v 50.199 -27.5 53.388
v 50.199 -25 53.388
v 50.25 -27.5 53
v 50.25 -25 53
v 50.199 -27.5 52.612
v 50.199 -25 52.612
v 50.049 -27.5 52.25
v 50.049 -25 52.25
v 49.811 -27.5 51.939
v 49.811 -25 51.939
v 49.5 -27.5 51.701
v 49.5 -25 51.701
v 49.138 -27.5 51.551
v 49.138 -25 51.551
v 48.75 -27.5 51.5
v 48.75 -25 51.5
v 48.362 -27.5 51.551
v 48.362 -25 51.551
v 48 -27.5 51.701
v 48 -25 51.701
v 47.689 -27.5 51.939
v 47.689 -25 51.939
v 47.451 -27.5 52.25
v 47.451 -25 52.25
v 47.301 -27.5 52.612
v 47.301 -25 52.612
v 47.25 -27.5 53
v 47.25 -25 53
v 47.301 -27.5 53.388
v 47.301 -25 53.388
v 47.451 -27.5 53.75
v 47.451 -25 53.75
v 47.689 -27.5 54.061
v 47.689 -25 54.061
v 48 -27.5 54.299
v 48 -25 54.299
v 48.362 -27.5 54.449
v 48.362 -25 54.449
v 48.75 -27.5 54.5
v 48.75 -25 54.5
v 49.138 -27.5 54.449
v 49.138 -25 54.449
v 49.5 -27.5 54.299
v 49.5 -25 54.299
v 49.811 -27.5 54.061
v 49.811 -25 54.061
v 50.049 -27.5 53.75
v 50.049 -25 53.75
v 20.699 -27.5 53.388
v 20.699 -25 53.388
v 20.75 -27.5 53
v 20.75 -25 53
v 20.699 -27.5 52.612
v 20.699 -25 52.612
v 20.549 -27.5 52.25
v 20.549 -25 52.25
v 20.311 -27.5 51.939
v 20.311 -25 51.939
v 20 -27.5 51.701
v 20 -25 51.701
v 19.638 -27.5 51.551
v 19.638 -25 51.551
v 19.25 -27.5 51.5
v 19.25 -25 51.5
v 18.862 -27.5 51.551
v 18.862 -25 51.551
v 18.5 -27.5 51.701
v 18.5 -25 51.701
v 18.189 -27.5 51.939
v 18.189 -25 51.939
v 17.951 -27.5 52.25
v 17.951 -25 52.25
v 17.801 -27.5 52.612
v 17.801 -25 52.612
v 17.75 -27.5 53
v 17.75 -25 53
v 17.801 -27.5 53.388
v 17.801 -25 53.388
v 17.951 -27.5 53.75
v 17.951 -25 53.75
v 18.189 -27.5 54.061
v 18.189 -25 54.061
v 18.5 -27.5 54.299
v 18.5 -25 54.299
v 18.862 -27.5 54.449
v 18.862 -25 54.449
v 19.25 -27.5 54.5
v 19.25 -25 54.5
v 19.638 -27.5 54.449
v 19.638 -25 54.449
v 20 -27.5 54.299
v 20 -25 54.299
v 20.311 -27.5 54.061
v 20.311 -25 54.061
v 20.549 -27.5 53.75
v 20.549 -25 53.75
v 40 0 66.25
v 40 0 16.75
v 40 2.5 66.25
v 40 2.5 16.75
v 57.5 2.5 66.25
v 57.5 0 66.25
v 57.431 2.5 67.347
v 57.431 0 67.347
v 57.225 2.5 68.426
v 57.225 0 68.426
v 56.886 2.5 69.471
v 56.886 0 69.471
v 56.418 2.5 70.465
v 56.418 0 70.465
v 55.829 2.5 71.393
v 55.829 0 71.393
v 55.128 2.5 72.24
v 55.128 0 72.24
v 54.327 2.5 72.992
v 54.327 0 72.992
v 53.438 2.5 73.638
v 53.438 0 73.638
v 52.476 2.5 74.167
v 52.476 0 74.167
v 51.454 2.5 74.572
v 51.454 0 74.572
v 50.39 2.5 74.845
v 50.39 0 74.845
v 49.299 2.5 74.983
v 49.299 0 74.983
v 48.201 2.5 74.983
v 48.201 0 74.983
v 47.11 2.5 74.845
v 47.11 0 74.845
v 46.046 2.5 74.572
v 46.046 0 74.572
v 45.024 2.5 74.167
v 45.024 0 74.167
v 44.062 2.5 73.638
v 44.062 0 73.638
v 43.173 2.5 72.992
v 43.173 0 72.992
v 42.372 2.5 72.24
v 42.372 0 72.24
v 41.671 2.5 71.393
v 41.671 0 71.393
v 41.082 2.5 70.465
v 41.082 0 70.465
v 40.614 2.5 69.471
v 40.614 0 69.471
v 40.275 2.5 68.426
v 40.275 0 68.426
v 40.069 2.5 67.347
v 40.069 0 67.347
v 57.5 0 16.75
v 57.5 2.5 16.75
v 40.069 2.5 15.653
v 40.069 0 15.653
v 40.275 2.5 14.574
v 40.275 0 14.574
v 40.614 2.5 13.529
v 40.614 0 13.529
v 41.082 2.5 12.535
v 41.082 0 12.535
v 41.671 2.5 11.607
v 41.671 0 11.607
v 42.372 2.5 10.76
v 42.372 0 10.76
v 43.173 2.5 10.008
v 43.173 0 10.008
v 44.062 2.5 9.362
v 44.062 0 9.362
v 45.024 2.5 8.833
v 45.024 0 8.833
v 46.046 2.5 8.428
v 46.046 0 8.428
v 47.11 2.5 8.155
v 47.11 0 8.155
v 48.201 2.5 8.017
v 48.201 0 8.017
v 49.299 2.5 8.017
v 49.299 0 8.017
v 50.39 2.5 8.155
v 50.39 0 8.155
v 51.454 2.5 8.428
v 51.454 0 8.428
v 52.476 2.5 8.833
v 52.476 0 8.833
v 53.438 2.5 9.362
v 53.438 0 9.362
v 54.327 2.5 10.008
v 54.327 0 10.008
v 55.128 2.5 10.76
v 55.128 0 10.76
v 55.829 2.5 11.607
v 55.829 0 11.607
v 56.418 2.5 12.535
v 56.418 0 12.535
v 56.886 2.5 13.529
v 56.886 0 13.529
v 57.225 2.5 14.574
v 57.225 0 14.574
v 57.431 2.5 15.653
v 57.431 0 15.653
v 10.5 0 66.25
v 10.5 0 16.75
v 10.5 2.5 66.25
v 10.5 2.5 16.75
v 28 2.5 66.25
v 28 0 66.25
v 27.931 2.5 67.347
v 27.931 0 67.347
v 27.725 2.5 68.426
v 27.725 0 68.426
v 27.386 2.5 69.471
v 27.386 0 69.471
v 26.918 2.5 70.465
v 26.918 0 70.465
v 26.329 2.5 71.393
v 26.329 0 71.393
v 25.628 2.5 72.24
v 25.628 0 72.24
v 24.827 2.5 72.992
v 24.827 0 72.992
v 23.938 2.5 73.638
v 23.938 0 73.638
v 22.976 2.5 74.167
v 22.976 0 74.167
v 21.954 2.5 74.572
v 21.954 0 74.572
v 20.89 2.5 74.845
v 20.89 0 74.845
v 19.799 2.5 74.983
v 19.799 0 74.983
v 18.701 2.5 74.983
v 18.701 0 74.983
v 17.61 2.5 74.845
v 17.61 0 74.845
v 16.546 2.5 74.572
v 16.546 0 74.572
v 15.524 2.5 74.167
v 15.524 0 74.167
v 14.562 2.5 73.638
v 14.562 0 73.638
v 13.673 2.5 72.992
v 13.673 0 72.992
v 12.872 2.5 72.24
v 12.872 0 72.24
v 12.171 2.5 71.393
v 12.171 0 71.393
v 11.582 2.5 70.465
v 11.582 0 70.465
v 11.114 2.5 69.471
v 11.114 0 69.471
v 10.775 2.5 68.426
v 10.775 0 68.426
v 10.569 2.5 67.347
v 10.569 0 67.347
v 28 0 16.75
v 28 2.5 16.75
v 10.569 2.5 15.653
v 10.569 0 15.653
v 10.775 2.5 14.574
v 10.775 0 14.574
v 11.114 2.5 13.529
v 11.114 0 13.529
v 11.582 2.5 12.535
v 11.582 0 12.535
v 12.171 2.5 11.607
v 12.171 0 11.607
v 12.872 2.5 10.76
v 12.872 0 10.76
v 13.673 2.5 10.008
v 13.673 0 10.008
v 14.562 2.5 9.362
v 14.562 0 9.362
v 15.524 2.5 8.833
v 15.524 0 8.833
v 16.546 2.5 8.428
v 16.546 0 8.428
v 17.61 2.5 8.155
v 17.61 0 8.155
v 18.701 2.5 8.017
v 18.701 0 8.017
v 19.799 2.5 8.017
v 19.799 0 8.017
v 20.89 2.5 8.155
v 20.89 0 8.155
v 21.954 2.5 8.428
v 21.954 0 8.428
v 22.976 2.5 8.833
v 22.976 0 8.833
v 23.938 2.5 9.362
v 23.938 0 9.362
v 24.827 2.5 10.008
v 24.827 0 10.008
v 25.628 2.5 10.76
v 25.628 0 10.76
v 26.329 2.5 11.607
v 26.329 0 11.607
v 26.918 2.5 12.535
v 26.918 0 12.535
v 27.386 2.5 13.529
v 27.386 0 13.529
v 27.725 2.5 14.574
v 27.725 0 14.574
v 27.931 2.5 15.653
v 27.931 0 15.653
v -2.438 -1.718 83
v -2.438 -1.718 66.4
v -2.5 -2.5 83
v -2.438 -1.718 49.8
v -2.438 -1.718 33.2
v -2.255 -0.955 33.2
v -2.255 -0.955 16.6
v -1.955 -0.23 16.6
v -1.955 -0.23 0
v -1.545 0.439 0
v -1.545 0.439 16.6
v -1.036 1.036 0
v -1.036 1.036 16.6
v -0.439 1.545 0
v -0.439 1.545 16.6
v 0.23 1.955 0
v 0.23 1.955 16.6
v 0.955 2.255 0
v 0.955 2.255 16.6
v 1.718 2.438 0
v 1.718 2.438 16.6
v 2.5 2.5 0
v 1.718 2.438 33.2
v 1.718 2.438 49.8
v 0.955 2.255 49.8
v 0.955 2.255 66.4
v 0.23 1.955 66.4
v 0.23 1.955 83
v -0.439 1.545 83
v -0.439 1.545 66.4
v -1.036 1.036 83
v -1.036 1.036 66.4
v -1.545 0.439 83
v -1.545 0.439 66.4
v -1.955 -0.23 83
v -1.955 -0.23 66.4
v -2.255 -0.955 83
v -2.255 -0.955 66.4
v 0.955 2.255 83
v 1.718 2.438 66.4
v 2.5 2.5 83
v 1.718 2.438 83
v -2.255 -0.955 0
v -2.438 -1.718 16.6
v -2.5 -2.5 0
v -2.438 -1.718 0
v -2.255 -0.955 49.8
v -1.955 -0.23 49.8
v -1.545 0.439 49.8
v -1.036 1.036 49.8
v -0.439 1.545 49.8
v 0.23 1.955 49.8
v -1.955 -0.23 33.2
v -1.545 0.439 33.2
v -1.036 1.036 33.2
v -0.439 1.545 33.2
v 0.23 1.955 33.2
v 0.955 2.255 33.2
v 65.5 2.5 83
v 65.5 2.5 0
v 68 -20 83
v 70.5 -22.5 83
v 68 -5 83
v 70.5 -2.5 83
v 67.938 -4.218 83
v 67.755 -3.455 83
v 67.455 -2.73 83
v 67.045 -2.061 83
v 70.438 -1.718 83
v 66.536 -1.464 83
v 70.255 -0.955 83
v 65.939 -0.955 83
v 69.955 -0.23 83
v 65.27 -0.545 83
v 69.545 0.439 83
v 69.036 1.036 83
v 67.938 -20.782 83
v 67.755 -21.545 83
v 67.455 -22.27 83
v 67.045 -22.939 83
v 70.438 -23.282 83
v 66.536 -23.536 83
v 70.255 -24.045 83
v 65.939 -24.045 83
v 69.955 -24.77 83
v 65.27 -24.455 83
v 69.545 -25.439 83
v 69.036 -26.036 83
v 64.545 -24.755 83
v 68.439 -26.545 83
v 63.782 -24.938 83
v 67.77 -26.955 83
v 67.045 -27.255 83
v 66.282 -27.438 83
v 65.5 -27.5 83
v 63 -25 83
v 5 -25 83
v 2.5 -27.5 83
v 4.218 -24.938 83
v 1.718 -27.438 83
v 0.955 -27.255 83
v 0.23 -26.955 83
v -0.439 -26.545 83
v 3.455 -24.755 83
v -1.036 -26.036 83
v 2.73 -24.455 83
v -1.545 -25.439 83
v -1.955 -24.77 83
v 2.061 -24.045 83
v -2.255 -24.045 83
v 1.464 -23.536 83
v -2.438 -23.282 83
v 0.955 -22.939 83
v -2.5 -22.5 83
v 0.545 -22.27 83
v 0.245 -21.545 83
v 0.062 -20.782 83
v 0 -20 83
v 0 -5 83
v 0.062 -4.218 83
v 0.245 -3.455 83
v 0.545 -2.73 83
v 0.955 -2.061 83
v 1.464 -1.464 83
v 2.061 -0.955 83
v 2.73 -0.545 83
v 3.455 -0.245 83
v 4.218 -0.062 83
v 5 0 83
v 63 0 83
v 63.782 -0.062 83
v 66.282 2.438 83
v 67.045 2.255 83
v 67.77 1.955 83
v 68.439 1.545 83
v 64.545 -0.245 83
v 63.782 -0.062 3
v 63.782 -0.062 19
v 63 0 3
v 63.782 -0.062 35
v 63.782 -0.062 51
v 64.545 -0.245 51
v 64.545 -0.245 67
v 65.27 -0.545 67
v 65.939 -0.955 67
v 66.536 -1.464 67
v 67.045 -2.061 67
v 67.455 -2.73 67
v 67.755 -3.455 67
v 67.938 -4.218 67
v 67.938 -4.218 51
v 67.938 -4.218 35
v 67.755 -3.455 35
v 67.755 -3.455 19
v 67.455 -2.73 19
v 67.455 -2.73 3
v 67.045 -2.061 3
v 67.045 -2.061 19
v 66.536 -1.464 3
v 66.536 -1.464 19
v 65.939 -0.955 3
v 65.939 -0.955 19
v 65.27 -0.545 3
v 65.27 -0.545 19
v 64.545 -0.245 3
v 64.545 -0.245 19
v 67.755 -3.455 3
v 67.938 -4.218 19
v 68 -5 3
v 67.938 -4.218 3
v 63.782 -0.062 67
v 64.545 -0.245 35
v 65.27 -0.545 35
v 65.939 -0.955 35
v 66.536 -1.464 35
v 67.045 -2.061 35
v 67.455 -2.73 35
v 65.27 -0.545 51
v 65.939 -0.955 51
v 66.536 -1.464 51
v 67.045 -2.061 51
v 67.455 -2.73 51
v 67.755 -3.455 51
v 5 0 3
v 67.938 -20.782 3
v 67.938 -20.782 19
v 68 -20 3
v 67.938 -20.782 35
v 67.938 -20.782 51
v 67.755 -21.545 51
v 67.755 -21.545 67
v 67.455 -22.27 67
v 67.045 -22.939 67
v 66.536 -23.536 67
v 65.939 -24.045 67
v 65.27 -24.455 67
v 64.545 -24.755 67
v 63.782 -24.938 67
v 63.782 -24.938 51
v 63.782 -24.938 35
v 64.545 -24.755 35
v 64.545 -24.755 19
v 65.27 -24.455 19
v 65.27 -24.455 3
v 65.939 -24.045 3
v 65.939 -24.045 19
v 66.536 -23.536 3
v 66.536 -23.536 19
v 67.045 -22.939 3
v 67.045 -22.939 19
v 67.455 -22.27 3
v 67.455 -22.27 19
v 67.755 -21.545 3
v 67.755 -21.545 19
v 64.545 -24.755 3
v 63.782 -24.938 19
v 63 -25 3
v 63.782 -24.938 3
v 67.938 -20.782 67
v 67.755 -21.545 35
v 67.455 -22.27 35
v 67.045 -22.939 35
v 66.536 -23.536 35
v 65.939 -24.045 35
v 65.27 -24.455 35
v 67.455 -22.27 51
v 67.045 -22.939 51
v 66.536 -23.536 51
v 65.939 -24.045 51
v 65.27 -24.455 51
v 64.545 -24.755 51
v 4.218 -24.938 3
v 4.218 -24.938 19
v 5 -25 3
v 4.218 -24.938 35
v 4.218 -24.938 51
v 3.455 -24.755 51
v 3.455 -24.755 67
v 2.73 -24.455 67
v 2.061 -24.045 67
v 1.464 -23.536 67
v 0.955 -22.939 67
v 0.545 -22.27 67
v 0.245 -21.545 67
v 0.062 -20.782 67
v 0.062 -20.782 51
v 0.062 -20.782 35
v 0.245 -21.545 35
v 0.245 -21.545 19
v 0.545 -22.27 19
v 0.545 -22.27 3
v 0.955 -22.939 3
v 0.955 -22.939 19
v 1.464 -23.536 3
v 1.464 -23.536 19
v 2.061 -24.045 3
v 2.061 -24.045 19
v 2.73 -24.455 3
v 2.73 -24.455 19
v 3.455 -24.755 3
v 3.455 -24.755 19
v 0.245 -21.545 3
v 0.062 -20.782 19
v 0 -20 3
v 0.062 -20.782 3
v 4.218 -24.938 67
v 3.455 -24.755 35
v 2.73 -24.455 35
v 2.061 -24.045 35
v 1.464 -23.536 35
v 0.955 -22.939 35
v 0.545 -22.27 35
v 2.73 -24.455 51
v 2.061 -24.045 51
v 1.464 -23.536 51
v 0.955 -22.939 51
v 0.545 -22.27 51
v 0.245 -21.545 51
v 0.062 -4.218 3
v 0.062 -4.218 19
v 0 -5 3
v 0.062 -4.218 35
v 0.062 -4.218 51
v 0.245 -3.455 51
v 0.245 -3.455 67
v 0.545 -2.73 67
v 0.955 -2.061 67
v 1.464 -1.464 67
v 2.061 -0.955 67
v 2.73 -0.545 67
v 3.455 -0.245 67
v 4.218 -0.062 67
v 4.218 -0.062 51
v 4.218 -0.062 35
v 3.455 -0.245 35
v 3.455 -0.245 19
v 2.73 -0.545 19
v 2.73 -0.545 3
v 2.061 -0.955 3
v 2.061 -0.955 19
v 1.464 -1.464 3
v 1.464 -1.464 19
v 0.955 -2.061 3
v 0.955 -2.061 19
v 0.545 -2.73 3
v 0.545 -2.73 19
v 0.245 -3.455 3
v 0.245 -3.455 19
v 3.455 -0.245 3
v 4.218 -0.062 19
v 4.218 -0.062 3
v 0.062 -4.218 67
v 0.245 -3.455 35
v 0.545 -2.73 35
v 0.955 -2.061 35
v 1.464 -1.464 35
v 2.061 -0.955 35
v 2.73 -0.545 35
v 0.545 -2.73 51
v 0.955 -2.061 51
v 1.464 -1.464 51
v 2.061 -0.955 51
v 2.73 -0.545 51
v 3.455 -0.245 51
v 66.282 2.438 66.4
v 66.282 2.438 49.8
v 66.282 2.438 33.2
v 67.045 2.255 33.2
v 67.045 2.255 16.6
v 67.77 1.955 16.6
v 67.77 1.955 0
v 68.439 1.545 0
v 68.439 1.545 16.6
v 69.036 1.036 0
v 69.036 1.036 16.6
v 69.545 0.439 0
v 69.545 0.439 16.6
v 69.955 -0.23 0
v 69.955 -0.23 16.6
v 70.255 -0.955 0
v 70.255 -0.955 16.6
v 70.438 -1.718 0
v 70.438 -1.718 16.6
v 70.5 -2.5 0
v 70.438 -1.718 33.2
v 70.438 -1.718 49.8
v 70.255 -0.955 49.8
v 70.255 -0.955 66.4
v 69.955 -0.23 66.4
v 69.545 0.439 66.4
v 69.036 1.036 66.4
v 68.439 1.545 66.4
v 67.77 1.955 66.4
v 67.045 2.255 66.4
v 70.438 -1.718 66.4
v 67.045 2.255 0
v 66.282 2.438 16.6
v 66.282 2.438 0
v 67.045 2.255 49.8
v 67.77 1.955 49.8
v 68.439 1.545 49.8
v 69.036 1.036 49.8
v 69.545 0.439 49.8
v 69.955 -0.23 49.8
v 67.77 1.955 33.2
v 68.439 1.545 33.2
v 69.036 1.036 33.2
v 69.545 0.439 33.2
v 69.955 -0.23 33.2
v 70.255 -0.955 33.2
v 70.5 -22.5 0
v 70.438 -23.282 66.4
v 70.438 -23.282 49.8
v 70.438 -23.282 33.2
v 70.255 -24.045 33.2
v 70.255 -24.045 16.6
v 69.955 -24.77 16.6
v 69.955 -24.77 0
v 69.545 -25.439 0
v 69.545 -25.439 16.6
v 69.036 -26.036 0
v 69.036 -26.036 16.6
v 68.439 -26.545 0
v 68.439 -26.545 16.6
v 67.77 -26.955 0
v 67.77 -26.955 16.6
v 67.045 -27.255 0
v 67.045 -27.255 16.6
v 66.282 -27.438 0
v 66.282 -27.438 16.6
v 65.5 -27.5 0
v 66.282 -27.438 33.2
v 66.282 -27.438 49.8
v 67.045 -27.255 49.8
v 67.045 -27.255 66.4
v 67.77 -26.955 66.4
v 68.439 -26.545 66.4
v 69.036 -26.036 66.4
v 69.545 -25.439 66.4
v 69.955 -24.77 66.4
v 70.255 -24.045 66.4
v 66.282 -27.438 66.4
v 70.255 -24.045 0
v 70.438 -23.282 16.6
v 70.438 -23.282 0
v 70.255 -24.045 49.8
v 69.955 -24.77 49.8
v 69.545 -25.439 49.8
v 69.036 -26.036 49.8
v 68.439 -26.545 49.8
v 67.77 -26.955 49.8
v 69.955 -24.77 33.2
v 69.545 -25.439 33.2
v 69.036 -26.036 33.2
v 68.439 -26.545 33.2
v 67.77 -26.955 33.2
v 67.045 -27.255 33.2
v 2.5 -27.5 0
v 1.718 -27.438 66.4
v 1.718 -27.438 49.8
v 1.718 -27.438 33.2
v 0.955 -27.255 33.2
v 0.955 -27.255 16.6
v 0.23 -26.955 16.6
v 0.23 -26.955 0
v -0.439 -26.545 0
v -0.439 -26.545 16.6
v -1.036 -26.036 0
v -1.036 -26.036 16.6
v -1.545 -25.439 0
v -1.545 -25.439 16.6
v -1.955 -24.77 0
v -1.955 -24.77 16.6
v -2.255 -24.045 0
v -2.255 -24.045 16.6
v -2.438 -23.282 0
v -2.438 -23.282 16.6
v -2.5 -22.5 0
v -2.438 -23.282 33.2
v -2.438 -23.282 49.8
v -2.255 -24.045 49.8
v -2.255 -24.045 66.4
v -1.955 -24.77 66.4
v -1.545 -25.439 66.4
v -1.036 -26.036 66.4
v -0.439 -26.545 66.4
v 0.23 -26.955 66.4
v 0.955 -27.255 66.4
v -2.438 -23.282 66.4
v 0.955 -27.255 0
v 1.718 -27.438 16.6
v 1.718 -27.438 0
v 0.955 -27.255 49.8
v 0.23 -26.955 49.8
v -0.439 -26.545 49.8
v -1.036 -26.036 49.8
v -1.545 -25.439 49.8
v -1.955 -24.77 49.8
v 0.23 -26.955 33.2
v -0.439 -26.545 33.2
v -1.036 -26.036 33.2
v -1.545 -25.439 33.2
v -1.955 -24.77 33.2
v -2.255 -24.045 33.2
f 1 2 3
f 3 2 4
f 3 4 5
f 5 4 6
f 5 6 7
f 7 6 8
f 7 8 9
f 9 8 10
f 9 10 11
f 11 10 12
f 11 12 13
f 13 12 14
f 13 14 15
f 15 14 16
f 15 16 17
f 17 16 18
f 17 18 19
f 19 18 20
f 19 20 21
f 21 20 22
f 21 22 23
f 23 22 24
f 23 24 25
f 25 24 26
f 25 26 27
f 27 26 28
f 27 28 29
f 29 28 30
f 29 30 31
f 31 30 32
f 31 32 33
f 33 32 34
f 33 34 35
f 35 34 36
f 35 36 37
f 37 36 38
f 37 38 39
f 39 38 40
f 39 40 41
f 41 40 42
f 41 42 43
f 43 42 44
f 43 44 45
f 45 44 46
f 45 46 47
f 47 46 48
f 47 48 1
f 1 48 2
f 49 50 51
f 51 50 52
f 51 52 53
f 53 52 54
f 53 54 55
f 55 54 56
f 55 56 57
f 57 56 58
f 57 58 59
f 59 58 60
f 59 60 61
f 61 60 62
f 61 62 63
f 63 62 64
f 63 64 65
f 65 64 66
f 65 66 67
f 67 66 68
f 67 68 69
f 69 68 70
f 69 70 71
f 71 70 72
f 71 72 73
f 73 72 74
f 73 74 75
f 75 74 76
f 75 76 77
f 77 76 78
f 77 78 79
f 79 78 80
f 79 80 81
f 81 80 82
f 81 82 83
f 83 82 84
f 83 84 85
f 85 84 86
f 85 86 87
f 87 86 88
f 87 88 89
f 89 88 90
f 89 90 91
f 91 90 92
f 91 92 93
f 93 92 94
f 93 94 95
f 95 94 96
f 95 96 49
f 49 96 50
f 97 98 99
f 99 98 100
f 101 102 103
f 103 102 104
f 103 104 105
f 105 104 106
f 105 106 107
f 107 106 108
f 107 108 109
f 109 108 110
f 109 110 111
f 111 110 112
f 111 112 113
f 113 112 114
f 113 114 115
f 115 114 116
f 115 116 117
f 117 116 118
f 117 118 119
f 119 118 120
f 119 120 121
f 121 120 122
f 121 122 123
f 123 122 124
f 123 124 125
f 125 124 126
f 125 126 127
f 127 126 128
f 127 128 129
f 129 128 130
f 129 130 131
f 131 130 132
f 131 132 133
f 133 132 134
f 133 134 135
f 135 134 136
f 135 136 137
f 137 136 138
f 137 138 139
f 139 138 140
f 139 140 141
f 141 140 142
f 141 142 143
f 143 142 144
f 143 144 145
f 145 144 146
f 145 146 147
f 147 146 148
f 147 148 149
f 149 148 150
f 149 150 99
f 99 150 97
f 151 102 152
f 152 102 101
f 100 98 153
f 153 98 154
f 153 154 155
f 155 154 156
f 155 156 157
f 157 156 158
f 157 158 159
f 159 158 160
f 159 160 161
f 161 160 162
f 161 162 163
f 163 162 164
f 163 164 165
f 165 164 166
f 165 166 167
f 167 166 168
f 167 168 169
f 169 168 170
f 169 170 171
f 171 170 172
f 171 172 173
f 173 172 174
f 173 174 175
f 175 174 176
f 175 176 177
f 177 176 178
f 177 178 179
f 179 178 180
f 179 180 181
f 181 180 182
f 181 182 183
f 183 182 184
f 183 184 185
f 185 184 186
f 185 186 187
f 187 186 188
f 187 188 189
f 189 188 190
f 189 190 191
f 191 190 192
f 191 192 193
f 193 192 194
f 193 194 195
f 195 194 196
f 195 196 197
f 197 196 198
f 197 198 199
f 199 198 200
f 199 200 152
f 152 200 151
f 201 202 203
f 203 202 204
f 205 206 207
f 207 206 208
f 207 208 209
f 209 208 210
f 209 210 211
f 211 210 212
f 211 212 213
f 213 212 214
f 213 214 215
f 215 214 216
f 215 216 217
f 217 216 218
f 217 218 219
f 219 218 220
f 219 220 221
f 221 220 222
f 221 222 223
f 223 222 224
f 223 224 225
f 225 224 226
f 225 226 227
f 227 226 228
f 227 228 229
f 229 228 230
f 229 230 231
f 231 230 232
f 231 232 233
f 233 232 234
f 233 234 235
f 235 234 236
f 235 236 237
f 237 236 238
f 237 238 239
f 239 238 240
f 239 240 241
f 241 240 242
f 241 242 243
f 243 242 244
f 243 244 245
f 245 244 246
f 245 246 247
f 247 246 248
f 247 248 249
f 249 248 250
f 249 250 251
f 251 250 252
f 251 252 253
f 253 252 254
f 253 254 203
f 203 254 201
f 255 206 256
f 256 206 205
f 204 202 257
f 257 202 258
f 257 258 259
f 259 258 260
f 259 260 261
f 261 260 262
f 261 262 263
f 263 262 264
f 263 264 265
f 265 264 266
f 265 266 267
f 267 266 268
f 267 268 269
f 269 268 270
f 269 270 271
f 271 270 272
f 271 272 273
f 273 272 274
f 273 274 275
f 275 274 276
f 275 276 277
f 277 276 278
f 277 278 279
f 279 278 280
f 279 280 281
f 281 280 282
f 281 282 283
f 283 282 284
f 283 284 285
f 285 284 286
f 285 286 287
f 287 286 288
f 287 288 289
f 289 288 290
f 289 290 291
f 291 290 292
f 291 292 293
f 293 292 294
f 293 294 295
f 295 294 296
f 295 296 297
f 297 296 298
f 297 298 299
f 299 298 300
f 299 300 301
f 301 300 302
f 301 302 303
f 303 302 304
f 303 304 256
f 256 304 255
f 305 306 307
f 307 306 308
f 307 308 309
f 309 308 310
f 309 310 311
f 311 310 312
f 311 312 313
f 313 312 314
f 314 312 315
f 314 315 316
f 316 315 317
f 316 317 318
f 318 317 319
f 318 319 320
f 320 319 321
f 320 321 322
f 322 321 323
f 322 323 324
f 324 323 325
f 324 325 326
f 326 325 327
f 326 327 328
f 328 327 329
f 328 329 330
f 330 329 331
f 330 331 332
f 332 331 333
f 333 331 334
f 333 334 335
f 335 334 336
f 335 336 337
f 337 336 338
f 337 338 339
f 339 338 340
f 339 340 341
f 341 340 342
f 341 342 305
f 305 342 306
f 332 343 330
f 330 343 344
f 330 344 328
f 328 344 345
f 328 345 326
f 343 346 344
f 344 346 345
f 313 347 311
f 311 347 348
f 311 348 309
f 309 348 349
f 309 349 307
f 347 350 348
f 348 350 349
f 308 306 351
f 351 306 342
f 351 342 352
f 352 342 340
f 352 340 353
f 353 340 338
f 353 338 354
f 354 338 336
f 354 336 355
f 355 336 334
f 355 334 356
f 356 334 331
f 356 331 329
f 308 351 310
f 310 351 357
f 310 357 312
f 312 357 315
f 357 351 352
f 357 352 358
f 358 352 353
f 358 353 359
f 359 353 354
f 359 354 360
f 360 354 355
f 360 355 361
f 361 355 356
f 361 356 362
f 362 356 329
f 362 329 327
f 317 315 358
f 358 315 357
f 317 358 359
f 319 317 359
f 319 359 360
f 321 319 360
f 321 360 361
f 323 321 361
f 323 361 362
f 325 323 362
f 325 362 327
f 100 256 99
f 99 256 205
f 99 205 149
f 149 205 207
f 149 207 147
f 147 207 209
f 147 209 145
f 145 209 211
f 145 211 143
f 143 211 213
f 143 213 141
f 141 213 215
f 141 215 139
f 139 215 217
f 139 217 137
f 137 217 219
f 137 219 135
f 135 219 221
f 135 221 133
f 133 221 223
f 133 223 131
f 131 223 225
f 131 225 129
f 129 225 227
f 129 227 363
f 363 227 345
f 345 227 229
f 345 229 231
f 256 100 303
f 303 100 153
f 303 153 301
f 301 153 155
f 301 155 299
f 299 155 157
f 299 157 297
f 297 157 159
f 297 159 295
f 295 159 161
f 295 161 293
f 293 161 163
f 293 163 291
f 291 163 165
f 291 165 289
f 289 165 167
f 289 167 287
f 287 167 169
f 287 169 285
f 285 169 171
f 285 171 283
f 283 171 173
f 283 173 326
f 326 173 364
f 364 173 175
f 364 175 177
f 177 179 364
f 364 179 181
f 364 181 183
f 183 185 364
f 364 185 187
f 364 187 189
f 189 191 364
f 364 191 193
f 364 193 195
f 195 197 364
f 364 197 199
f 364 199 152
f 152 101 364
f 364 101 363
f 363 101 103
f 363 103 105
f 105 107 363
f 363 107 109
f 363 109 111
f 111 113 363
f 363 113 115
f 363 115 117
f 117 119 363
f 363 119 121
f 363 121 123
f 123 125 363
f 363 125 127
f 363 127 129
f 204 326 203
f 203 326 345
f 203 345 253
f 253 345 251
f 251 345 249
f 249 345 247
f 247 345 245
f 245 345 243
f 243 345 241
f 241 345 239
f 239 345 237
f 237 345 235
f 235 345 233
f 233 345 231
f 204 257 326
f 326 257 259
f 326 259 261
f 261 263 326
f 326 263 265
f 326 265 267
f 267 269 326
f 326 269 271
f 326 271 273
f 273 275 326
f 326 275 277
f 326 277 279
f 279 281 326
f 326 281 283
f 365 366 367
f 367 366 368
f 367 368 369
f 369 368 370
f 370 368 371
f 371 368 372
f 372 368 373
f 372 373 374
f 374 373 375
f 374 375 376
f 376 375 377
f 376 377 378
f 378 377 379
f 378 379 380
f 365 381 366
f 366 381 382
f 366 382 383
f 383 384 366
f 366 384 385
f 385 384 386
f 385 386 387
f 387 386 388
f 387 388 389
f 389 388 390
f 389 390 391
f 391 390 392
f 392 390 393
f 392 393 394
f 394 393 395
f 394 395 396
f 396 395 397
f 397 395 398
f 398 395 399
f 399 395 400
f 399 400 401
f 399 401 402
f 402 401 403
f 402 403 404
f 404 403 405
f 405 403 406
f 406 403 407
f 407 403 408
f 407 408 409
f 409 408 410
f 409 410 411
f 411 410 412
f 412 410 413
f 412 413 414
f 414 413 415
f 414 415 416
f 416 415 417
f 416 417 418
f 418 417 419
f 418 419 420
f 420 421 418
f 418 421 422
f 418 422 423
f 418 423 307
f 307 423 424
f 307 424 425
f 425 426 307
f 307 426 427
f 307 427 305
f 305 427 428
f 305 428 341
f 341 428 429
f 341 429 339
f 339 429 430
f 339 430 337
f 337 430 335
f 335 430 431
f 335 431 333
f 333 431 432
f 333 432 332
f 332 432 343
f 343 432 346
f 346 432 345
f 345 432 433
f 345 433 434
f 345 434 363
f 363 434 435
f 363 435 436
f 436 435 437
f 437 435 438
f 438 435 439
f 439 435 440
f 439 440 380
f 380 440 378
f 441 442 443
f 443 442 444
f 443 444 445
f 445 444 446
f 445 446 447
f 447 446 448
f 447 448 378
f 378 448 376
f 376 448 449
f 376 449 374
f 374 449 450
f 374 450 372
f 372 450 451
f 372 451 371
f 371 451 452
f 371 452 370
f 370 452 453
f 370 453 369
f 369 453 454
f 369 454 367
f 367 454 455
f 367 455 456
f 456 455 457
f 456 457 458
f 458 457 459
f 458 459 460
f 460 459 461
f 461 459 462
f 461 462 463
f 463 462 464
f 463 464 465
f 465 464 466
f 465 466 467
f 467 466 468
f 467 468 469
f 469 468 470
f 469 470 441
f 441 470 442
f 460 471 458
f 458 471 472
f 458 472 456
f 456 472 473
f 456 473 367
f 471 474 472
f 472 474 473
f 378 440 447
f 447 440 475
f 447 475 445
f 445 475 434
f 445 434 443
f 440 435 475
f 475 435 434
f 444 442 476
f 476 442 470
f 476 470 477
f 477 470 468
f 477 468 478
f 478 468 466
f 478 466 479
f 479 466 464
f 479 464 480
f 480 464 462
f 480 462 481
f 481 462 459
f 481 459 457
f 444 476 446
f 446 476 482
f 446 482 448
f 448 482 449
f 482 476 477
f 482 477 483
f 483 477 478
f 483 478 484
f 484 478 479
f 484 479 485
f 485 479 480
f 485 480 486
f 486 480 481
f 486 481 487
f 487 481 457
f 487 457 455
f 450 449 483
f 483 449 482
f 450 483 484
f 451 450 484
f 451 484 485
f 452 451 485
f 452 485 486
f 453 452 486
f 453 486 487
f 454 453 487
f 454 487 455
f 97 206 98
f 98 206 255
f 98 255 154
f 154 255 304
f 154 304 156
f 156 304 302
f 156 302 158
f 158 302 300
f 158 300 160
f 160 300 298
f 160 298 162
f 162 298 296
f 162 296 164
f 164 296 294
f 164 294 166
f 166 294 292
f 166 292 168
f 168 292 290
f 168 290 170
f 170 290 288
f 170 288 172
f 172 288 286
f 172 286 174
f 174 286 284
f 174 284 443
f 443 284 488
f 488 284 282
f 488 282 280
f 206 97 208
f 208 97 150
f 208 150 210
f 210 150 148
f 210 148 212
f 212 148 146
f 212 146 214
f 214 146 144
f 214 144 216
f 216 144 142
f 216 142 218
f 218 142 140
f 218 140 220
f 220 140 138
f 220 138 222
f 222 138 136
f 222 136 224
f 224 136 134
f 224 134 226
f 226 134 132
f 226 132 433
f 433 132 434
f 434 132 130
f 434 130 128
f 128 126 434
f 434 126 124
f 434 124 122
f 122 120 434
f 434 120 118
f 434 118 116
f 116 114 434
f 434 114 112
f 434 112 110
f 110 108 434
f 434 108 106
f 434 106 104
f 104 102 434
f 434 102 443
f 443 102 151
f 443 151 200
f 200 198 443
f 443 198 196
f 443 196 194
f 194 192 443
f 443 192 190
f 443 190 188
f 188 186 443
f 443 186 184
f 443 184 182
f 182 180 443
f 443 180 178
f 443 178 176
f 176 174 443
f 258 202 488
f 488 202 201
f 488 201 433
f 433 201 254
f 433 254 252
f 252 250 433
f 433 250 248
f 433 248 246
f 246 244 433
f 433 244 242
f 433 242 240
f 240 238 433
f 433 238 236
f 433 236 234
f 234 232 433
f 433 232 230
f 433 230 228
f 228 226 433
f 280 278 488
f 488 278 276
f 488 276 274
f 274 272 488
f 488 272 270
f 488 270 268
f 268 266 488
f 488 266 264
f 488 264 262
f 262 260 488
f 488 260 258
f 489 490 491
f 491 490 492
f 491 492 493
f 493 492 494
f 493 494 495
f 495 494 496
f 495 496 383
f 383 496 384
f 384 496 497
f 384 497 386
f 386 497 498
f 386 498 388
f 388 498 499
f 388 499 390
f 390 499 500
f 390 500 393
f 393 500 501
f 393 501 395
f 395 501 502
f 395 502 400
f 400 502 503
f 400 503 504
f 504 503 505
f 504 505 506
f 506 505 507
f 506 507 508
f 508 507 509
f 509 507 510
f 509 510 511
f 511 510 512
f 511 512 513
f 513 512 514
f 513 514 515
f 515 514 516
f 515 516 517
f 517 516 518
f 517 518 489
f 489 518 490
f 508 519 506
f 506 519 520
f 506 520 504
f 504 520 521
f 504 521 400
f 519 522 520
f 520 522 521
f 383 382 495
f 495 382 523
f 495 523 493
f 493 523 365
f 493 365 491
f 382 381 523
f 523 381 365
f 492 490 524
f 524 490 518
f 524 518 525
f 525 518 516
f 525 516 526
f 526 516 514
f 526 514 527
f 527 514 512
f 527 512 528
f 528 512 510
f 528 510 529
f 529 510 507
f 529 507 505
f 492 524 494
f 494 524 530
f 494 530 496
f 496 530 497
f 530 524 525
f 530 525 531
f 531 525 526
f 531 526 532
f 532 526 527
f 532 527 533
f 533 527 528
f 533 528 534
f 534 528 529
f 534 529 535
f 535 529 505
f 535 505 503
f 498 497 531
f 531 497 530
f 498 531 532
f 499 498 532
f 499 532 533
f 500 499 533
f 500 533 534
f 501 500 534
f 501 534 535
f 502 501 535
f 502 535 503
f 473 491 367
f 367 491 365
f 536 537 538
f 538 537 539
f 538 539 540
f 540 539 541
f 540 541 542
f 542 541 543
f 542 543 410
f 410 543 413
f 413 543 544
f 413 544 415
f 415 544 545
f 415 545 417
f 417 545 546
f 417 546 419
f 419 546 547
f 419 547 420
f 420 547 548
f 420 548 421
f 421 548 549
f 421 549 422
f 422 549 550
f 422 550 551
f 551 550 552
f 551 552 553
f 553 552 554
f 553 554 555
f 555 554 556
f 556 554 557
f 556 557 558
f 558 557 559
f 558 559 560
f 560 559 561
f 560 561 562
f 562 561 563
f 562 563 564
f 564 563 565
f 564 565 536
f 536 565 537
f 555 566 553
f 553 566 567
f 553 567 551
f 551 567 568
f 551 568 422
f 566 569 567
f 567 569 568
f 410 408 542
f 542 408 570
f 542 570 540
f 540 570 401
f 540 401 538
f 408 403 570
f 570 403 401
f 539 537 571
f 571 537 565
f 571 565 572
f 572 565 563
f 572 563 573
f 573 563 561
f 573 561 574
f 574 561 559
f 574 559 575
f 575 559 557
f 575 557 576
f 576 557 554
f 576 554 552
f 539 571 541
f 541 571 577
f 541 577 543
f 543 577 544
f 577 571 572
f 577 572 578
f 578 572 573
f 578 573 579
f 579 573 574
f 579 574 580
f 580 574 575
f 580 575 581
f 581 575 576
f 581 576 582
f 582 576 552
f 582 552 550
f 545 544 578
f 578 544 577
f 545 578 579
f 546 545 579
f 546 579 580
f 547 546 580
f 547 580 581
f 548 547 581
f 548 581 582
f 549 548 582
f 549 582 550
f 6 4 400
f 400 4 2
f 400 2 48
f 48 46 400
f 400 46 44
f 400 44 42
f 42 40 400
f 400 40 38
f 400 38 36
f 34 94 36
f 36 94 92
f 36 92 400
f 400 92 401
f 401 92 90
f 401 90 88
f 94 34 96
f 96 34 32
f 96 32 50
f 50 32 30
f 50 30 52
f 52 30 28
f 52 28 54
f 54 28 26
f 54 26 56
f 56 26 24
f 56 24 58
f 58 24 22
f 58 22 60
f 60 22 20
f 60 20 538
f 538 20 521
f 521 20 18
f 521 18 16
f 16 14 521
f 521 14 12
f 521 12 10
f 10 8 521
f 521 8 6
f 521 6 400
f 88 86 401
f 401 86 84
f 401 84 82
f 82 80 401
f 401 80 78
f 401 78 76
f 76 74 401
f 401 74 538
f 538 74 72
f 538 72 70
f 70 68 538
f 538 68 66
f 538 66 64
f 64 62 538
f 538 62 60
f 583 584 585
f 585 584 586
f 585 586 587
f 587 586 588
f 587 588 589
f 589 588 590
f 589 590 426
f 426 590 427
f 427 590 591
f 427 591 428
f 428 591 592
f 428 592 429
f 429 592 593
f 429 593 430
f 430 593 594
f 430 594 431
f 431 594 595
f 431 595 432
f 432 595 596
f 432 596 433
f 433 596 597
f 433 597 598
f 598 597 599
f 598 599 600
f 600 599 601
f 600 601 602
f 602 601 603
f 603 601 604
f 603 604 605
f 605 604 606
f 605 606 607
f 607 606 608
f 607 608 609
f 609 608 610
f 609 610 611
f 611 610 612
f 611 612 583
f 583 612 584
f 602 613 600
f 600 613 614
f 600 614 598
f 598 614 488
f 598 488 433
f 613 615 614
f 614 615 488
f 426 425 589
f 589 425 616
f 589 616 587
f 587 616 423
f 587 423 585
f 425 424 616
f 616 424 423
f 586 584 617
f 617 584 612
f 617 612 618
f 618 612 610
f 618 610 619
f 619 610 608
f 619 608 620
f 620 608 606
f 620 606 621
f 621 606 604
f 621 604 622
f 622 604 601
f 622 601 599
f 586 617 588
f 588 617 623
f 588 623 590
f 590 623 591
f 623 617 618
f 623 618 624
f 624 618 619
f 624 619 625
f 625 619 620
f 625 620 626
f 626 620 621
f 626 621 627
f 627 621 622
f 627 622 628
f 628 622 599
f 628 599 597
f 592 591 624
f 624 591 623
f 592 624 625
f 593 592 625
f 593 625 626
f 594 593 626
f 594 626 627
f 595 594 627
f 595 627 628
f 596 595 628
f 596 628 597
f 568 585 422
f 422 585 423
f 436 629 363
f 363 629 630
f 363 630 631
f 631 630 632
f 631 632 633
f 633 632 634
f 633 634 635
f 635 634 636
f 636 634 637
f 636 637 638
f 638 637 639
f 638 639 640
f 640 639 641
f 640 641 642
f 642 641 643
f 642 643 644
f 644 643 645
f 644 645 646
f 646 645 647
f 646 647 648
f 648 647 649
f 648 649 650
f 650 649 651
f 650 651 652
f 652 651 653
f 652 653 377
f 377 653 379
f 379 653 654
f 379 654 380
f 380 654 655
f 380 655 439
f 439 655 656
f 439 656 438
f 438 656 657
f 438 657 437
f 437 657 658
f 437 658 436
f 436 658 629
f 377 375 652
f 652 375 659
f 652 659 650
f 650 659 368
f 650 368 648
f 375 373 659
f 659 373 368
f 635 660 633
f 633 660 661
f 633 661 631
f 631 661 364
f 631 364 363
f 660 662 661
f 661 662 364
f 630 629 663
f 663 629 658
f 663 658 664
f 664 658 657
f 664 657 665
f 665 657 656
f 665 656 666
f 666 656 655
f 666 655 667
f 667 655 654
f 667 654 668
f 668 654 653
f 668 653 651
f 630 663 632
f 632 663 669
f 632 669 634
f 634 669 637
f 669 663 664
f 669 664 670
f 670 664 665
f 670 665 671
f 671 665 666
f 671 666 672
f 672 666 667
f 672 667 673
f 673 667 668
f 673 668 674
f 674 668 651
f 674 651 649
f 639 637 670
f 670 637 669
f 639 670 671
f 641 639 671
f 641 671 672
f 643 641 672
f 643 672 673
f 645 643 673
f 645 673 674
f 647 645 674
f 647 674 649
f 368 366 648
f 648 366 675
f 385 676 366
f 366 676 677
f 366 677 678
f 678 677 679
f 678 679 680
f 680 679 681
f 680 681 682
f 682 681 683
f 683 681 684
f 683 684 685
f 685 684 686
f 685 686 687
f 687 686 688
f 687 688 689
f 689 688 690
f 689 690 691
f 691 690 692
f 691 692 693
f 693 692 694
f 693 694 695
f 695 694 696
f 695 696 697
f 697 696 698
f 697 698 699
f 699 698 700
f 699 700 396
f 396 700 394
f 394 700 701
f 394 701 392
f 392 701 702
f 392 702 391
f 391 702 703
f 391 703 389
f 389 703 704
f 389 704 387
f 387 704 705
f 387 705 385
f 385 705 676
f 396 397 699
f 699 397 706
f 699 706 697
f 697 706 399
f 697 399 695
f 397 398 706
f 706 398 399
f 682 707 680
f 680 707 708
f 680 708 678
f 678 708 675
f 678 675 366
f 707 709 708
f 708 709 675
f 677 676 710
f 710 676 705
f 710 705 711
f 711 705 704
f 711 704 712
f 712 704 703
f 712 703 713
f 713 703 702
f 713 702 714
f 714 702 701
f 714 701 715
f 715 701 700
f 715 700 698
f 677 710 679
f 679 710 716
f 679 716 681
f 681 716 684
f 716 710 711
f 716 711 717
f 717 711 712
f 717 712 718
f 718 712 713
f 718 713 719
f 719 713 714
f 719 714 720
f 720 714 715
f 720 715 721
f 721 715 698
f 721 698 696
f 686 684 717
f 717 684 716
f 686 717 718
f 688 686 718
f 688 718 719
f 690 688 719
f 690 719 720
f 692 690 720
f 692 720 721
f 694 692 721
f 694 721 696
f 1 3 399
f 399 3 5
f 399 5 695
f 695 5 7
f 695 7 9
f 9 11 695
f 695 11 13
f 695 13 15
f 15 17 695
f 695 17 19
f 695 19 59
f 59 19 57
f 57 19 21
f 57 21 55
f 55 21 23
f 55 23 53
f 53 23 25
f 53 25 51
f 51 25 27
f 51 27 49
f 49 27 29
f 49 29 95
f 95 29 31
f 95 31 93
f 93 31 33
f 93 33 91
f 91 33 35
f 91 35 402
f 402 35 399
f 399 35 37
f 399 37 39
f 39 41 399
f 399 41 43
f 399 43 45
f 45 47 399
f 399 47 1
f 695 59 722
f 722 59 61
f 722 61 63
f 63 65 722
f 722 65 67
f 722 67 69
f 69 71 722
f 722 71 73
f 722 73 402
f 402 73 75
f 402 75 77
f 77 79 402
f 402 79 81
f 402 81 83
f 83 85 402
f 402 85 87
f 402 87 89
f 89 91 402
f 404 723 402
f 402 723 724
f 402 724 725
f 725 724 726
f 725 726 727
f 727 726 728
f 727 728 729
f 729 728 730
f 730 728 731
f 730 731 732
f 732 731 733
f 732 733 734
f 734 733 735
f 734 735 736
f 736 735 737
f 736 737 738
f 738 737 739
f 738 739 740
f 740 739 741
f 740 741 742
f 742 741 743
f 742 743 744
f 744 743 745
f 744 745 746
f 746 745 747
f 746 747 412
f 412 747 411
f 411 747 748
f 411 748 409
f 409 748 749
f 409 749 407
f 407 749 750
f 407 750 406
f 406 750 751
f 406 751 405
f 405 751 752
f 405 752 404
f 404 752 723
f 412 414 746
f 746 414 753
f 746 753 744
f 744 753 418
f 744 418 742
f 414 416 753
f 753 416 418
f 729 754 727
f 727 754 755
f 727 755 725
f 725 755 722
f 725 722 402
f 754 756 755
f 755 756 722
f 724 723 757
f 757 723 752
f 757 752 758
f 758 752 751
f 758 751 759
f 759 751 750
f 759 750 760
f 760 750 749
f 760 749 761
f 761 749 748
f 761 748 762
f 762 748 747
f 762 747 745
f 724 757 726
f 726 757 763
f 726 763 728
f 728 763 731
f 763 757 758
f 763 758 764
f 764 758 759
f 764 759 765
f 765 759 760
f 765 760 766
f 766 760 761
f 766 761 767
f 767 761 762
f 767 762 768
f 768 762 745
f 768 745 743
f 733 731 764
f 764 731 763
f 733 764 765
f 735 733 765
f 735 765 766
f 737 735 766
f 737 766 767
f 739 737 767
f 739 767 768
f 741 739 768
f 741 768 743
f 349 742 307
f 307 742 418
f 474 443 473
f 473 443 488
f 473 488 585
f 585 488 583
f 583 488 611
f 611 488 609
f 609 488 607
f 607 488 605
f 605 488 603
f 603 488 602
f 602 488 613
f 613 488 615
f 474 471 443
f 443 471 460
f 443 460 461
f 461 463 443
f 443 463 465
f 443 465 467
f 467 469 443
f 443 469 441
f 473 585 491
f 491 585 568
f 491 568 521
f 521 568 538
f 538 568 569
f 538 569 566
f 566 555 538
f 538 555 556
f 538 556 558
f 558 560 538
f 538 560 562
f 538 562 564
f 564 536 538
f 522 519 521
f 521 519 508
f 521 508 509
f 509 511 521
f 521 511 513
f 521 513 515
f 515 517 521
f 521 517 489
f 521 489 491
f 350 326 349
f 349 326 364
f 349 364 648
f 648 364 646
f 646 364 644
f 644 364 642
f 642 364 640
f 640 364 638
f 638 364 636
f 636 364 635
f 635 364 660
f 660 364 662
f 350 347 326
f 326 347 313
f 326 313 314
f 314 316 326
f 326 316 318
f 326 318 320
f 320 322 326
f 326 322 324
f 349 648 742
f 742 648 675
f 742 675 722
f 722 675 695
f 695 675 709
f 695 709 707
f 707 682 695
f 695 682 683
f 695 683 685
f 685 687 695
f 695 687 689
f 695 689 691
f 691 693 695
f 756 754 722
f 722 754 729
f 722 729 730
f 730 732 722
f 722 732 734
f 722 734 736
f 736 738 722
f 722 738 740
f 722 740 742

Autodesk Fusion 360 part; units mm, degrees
sketch "top" plane through (0, 0, 0) normal (0, 0, 1) x (1, 0, 0)
  line L0 (0, 0) -> (68, 0)
  line L1 (68, 0) -> (68, -25)
  line L2 (68, -25) -> (0, -25)
  line L3 (0, -25) -> (0, 0)
  line L4 (70.5, -27.5) -> (-2.5, -27.5)
  line L5 (-2.5, -27.5) -> (-2.5, 2.5)
  line L6 (-2.5, 2.5) -> (70.5, 2.5)
  line L7 (70.5, 2.5) -> (70.5, -27.5)
  dimension "d1" = 68
  dimension "d2" = 25
  dimension "d3" = -2.5
extrude "Extrude1" add sketch "top" along normal blind 3 contours L0 L1 L2 L3 | L4 L5 L6 L7
extrude "Extrude2" add sketch "top" along normal blind 80 from surface at 3
fillet "Fillet1" radius 5 8 edges at (-2.5, -27.5, 41.5) (70.5, -27.5, 41.5) (70.5, 2.5, 41.5) (0, 0, 43) (0, -25, 43) (68, -25, 43) (68, 0, 43) (-2.5, 2.5, 41.5)
sketch "side" plane through (0, 2.5, 0) normal (0, 1, 0) x (-1, 0, 0)
  line L0 (-2.5, 0) -> (-2.5, 83)
  line L1 (-2.5, 83) -> (-65.5, 83)
  line L2 (-65.5, 83) -> (-65.5, 0)
  line L3 (-65.5, 0) -> (-2.5, 0)
  line L4 (-65.5, 0) -> (-65.5, 83)
  line L5 (-2.5, 83) -> (-2.5, 0)
  line L6 (-65.5, 83) -> (-2.5, 83)
  line L7 (-2.5, 0) -> (-65.5, 0)
  line L8 (-34, 83) -> (-34, 0) construction
  line L9 (-57.5, 66.25) -> (-57.5, 16.75)
  arc A0 (-57.5, 16.75) -> (-40, 16.75) centre (-48.75, 16.75) ccw
  line L10 (-40, 16.75) -> (-40, 66.25)
  arc A1 (-40, 66.25) -> (-57.5, 66.25) centre (-48.75, 66.25) ccw
  line L11 (-48.75, 66.25) -> (-48.75, 16.75) construction
  arc A2 (-10.5, 66.25) -> (-28, 66.25) centre (-19.25, 66.25) ccw
  line L12 (-10.5, 66.25) -> (-10.5, 16.75)
  arc A3 (-28, 16.75) -> (-10.5, 16.75) centre (-19.25, 16.75) ccw
  line L13 (-28, 16.75) -> (-28, 66.25)
  circle A4 centre (-48.75, 53) radius 1.5
  circle A5 centre (-19.25, 53) radius 1.5
  dimension "d11" = 8
  dimension "d12" = 6
  dimension "d13" = 8
  dimension "d14" = 8
  dimension "d17" = 3
  dimension "d18" = 30
extrude "Extrude3" cut sketch "side" against normal up to surface (2.5 mm away) contours L9 A0 L10 A1 | A2 L12 A3 L13 | A4 | A5
extrude "Extrude4" cut sketch "side" against normal up to surface (2.5 mm away) from surface at -27.5 contours A4 | A5
